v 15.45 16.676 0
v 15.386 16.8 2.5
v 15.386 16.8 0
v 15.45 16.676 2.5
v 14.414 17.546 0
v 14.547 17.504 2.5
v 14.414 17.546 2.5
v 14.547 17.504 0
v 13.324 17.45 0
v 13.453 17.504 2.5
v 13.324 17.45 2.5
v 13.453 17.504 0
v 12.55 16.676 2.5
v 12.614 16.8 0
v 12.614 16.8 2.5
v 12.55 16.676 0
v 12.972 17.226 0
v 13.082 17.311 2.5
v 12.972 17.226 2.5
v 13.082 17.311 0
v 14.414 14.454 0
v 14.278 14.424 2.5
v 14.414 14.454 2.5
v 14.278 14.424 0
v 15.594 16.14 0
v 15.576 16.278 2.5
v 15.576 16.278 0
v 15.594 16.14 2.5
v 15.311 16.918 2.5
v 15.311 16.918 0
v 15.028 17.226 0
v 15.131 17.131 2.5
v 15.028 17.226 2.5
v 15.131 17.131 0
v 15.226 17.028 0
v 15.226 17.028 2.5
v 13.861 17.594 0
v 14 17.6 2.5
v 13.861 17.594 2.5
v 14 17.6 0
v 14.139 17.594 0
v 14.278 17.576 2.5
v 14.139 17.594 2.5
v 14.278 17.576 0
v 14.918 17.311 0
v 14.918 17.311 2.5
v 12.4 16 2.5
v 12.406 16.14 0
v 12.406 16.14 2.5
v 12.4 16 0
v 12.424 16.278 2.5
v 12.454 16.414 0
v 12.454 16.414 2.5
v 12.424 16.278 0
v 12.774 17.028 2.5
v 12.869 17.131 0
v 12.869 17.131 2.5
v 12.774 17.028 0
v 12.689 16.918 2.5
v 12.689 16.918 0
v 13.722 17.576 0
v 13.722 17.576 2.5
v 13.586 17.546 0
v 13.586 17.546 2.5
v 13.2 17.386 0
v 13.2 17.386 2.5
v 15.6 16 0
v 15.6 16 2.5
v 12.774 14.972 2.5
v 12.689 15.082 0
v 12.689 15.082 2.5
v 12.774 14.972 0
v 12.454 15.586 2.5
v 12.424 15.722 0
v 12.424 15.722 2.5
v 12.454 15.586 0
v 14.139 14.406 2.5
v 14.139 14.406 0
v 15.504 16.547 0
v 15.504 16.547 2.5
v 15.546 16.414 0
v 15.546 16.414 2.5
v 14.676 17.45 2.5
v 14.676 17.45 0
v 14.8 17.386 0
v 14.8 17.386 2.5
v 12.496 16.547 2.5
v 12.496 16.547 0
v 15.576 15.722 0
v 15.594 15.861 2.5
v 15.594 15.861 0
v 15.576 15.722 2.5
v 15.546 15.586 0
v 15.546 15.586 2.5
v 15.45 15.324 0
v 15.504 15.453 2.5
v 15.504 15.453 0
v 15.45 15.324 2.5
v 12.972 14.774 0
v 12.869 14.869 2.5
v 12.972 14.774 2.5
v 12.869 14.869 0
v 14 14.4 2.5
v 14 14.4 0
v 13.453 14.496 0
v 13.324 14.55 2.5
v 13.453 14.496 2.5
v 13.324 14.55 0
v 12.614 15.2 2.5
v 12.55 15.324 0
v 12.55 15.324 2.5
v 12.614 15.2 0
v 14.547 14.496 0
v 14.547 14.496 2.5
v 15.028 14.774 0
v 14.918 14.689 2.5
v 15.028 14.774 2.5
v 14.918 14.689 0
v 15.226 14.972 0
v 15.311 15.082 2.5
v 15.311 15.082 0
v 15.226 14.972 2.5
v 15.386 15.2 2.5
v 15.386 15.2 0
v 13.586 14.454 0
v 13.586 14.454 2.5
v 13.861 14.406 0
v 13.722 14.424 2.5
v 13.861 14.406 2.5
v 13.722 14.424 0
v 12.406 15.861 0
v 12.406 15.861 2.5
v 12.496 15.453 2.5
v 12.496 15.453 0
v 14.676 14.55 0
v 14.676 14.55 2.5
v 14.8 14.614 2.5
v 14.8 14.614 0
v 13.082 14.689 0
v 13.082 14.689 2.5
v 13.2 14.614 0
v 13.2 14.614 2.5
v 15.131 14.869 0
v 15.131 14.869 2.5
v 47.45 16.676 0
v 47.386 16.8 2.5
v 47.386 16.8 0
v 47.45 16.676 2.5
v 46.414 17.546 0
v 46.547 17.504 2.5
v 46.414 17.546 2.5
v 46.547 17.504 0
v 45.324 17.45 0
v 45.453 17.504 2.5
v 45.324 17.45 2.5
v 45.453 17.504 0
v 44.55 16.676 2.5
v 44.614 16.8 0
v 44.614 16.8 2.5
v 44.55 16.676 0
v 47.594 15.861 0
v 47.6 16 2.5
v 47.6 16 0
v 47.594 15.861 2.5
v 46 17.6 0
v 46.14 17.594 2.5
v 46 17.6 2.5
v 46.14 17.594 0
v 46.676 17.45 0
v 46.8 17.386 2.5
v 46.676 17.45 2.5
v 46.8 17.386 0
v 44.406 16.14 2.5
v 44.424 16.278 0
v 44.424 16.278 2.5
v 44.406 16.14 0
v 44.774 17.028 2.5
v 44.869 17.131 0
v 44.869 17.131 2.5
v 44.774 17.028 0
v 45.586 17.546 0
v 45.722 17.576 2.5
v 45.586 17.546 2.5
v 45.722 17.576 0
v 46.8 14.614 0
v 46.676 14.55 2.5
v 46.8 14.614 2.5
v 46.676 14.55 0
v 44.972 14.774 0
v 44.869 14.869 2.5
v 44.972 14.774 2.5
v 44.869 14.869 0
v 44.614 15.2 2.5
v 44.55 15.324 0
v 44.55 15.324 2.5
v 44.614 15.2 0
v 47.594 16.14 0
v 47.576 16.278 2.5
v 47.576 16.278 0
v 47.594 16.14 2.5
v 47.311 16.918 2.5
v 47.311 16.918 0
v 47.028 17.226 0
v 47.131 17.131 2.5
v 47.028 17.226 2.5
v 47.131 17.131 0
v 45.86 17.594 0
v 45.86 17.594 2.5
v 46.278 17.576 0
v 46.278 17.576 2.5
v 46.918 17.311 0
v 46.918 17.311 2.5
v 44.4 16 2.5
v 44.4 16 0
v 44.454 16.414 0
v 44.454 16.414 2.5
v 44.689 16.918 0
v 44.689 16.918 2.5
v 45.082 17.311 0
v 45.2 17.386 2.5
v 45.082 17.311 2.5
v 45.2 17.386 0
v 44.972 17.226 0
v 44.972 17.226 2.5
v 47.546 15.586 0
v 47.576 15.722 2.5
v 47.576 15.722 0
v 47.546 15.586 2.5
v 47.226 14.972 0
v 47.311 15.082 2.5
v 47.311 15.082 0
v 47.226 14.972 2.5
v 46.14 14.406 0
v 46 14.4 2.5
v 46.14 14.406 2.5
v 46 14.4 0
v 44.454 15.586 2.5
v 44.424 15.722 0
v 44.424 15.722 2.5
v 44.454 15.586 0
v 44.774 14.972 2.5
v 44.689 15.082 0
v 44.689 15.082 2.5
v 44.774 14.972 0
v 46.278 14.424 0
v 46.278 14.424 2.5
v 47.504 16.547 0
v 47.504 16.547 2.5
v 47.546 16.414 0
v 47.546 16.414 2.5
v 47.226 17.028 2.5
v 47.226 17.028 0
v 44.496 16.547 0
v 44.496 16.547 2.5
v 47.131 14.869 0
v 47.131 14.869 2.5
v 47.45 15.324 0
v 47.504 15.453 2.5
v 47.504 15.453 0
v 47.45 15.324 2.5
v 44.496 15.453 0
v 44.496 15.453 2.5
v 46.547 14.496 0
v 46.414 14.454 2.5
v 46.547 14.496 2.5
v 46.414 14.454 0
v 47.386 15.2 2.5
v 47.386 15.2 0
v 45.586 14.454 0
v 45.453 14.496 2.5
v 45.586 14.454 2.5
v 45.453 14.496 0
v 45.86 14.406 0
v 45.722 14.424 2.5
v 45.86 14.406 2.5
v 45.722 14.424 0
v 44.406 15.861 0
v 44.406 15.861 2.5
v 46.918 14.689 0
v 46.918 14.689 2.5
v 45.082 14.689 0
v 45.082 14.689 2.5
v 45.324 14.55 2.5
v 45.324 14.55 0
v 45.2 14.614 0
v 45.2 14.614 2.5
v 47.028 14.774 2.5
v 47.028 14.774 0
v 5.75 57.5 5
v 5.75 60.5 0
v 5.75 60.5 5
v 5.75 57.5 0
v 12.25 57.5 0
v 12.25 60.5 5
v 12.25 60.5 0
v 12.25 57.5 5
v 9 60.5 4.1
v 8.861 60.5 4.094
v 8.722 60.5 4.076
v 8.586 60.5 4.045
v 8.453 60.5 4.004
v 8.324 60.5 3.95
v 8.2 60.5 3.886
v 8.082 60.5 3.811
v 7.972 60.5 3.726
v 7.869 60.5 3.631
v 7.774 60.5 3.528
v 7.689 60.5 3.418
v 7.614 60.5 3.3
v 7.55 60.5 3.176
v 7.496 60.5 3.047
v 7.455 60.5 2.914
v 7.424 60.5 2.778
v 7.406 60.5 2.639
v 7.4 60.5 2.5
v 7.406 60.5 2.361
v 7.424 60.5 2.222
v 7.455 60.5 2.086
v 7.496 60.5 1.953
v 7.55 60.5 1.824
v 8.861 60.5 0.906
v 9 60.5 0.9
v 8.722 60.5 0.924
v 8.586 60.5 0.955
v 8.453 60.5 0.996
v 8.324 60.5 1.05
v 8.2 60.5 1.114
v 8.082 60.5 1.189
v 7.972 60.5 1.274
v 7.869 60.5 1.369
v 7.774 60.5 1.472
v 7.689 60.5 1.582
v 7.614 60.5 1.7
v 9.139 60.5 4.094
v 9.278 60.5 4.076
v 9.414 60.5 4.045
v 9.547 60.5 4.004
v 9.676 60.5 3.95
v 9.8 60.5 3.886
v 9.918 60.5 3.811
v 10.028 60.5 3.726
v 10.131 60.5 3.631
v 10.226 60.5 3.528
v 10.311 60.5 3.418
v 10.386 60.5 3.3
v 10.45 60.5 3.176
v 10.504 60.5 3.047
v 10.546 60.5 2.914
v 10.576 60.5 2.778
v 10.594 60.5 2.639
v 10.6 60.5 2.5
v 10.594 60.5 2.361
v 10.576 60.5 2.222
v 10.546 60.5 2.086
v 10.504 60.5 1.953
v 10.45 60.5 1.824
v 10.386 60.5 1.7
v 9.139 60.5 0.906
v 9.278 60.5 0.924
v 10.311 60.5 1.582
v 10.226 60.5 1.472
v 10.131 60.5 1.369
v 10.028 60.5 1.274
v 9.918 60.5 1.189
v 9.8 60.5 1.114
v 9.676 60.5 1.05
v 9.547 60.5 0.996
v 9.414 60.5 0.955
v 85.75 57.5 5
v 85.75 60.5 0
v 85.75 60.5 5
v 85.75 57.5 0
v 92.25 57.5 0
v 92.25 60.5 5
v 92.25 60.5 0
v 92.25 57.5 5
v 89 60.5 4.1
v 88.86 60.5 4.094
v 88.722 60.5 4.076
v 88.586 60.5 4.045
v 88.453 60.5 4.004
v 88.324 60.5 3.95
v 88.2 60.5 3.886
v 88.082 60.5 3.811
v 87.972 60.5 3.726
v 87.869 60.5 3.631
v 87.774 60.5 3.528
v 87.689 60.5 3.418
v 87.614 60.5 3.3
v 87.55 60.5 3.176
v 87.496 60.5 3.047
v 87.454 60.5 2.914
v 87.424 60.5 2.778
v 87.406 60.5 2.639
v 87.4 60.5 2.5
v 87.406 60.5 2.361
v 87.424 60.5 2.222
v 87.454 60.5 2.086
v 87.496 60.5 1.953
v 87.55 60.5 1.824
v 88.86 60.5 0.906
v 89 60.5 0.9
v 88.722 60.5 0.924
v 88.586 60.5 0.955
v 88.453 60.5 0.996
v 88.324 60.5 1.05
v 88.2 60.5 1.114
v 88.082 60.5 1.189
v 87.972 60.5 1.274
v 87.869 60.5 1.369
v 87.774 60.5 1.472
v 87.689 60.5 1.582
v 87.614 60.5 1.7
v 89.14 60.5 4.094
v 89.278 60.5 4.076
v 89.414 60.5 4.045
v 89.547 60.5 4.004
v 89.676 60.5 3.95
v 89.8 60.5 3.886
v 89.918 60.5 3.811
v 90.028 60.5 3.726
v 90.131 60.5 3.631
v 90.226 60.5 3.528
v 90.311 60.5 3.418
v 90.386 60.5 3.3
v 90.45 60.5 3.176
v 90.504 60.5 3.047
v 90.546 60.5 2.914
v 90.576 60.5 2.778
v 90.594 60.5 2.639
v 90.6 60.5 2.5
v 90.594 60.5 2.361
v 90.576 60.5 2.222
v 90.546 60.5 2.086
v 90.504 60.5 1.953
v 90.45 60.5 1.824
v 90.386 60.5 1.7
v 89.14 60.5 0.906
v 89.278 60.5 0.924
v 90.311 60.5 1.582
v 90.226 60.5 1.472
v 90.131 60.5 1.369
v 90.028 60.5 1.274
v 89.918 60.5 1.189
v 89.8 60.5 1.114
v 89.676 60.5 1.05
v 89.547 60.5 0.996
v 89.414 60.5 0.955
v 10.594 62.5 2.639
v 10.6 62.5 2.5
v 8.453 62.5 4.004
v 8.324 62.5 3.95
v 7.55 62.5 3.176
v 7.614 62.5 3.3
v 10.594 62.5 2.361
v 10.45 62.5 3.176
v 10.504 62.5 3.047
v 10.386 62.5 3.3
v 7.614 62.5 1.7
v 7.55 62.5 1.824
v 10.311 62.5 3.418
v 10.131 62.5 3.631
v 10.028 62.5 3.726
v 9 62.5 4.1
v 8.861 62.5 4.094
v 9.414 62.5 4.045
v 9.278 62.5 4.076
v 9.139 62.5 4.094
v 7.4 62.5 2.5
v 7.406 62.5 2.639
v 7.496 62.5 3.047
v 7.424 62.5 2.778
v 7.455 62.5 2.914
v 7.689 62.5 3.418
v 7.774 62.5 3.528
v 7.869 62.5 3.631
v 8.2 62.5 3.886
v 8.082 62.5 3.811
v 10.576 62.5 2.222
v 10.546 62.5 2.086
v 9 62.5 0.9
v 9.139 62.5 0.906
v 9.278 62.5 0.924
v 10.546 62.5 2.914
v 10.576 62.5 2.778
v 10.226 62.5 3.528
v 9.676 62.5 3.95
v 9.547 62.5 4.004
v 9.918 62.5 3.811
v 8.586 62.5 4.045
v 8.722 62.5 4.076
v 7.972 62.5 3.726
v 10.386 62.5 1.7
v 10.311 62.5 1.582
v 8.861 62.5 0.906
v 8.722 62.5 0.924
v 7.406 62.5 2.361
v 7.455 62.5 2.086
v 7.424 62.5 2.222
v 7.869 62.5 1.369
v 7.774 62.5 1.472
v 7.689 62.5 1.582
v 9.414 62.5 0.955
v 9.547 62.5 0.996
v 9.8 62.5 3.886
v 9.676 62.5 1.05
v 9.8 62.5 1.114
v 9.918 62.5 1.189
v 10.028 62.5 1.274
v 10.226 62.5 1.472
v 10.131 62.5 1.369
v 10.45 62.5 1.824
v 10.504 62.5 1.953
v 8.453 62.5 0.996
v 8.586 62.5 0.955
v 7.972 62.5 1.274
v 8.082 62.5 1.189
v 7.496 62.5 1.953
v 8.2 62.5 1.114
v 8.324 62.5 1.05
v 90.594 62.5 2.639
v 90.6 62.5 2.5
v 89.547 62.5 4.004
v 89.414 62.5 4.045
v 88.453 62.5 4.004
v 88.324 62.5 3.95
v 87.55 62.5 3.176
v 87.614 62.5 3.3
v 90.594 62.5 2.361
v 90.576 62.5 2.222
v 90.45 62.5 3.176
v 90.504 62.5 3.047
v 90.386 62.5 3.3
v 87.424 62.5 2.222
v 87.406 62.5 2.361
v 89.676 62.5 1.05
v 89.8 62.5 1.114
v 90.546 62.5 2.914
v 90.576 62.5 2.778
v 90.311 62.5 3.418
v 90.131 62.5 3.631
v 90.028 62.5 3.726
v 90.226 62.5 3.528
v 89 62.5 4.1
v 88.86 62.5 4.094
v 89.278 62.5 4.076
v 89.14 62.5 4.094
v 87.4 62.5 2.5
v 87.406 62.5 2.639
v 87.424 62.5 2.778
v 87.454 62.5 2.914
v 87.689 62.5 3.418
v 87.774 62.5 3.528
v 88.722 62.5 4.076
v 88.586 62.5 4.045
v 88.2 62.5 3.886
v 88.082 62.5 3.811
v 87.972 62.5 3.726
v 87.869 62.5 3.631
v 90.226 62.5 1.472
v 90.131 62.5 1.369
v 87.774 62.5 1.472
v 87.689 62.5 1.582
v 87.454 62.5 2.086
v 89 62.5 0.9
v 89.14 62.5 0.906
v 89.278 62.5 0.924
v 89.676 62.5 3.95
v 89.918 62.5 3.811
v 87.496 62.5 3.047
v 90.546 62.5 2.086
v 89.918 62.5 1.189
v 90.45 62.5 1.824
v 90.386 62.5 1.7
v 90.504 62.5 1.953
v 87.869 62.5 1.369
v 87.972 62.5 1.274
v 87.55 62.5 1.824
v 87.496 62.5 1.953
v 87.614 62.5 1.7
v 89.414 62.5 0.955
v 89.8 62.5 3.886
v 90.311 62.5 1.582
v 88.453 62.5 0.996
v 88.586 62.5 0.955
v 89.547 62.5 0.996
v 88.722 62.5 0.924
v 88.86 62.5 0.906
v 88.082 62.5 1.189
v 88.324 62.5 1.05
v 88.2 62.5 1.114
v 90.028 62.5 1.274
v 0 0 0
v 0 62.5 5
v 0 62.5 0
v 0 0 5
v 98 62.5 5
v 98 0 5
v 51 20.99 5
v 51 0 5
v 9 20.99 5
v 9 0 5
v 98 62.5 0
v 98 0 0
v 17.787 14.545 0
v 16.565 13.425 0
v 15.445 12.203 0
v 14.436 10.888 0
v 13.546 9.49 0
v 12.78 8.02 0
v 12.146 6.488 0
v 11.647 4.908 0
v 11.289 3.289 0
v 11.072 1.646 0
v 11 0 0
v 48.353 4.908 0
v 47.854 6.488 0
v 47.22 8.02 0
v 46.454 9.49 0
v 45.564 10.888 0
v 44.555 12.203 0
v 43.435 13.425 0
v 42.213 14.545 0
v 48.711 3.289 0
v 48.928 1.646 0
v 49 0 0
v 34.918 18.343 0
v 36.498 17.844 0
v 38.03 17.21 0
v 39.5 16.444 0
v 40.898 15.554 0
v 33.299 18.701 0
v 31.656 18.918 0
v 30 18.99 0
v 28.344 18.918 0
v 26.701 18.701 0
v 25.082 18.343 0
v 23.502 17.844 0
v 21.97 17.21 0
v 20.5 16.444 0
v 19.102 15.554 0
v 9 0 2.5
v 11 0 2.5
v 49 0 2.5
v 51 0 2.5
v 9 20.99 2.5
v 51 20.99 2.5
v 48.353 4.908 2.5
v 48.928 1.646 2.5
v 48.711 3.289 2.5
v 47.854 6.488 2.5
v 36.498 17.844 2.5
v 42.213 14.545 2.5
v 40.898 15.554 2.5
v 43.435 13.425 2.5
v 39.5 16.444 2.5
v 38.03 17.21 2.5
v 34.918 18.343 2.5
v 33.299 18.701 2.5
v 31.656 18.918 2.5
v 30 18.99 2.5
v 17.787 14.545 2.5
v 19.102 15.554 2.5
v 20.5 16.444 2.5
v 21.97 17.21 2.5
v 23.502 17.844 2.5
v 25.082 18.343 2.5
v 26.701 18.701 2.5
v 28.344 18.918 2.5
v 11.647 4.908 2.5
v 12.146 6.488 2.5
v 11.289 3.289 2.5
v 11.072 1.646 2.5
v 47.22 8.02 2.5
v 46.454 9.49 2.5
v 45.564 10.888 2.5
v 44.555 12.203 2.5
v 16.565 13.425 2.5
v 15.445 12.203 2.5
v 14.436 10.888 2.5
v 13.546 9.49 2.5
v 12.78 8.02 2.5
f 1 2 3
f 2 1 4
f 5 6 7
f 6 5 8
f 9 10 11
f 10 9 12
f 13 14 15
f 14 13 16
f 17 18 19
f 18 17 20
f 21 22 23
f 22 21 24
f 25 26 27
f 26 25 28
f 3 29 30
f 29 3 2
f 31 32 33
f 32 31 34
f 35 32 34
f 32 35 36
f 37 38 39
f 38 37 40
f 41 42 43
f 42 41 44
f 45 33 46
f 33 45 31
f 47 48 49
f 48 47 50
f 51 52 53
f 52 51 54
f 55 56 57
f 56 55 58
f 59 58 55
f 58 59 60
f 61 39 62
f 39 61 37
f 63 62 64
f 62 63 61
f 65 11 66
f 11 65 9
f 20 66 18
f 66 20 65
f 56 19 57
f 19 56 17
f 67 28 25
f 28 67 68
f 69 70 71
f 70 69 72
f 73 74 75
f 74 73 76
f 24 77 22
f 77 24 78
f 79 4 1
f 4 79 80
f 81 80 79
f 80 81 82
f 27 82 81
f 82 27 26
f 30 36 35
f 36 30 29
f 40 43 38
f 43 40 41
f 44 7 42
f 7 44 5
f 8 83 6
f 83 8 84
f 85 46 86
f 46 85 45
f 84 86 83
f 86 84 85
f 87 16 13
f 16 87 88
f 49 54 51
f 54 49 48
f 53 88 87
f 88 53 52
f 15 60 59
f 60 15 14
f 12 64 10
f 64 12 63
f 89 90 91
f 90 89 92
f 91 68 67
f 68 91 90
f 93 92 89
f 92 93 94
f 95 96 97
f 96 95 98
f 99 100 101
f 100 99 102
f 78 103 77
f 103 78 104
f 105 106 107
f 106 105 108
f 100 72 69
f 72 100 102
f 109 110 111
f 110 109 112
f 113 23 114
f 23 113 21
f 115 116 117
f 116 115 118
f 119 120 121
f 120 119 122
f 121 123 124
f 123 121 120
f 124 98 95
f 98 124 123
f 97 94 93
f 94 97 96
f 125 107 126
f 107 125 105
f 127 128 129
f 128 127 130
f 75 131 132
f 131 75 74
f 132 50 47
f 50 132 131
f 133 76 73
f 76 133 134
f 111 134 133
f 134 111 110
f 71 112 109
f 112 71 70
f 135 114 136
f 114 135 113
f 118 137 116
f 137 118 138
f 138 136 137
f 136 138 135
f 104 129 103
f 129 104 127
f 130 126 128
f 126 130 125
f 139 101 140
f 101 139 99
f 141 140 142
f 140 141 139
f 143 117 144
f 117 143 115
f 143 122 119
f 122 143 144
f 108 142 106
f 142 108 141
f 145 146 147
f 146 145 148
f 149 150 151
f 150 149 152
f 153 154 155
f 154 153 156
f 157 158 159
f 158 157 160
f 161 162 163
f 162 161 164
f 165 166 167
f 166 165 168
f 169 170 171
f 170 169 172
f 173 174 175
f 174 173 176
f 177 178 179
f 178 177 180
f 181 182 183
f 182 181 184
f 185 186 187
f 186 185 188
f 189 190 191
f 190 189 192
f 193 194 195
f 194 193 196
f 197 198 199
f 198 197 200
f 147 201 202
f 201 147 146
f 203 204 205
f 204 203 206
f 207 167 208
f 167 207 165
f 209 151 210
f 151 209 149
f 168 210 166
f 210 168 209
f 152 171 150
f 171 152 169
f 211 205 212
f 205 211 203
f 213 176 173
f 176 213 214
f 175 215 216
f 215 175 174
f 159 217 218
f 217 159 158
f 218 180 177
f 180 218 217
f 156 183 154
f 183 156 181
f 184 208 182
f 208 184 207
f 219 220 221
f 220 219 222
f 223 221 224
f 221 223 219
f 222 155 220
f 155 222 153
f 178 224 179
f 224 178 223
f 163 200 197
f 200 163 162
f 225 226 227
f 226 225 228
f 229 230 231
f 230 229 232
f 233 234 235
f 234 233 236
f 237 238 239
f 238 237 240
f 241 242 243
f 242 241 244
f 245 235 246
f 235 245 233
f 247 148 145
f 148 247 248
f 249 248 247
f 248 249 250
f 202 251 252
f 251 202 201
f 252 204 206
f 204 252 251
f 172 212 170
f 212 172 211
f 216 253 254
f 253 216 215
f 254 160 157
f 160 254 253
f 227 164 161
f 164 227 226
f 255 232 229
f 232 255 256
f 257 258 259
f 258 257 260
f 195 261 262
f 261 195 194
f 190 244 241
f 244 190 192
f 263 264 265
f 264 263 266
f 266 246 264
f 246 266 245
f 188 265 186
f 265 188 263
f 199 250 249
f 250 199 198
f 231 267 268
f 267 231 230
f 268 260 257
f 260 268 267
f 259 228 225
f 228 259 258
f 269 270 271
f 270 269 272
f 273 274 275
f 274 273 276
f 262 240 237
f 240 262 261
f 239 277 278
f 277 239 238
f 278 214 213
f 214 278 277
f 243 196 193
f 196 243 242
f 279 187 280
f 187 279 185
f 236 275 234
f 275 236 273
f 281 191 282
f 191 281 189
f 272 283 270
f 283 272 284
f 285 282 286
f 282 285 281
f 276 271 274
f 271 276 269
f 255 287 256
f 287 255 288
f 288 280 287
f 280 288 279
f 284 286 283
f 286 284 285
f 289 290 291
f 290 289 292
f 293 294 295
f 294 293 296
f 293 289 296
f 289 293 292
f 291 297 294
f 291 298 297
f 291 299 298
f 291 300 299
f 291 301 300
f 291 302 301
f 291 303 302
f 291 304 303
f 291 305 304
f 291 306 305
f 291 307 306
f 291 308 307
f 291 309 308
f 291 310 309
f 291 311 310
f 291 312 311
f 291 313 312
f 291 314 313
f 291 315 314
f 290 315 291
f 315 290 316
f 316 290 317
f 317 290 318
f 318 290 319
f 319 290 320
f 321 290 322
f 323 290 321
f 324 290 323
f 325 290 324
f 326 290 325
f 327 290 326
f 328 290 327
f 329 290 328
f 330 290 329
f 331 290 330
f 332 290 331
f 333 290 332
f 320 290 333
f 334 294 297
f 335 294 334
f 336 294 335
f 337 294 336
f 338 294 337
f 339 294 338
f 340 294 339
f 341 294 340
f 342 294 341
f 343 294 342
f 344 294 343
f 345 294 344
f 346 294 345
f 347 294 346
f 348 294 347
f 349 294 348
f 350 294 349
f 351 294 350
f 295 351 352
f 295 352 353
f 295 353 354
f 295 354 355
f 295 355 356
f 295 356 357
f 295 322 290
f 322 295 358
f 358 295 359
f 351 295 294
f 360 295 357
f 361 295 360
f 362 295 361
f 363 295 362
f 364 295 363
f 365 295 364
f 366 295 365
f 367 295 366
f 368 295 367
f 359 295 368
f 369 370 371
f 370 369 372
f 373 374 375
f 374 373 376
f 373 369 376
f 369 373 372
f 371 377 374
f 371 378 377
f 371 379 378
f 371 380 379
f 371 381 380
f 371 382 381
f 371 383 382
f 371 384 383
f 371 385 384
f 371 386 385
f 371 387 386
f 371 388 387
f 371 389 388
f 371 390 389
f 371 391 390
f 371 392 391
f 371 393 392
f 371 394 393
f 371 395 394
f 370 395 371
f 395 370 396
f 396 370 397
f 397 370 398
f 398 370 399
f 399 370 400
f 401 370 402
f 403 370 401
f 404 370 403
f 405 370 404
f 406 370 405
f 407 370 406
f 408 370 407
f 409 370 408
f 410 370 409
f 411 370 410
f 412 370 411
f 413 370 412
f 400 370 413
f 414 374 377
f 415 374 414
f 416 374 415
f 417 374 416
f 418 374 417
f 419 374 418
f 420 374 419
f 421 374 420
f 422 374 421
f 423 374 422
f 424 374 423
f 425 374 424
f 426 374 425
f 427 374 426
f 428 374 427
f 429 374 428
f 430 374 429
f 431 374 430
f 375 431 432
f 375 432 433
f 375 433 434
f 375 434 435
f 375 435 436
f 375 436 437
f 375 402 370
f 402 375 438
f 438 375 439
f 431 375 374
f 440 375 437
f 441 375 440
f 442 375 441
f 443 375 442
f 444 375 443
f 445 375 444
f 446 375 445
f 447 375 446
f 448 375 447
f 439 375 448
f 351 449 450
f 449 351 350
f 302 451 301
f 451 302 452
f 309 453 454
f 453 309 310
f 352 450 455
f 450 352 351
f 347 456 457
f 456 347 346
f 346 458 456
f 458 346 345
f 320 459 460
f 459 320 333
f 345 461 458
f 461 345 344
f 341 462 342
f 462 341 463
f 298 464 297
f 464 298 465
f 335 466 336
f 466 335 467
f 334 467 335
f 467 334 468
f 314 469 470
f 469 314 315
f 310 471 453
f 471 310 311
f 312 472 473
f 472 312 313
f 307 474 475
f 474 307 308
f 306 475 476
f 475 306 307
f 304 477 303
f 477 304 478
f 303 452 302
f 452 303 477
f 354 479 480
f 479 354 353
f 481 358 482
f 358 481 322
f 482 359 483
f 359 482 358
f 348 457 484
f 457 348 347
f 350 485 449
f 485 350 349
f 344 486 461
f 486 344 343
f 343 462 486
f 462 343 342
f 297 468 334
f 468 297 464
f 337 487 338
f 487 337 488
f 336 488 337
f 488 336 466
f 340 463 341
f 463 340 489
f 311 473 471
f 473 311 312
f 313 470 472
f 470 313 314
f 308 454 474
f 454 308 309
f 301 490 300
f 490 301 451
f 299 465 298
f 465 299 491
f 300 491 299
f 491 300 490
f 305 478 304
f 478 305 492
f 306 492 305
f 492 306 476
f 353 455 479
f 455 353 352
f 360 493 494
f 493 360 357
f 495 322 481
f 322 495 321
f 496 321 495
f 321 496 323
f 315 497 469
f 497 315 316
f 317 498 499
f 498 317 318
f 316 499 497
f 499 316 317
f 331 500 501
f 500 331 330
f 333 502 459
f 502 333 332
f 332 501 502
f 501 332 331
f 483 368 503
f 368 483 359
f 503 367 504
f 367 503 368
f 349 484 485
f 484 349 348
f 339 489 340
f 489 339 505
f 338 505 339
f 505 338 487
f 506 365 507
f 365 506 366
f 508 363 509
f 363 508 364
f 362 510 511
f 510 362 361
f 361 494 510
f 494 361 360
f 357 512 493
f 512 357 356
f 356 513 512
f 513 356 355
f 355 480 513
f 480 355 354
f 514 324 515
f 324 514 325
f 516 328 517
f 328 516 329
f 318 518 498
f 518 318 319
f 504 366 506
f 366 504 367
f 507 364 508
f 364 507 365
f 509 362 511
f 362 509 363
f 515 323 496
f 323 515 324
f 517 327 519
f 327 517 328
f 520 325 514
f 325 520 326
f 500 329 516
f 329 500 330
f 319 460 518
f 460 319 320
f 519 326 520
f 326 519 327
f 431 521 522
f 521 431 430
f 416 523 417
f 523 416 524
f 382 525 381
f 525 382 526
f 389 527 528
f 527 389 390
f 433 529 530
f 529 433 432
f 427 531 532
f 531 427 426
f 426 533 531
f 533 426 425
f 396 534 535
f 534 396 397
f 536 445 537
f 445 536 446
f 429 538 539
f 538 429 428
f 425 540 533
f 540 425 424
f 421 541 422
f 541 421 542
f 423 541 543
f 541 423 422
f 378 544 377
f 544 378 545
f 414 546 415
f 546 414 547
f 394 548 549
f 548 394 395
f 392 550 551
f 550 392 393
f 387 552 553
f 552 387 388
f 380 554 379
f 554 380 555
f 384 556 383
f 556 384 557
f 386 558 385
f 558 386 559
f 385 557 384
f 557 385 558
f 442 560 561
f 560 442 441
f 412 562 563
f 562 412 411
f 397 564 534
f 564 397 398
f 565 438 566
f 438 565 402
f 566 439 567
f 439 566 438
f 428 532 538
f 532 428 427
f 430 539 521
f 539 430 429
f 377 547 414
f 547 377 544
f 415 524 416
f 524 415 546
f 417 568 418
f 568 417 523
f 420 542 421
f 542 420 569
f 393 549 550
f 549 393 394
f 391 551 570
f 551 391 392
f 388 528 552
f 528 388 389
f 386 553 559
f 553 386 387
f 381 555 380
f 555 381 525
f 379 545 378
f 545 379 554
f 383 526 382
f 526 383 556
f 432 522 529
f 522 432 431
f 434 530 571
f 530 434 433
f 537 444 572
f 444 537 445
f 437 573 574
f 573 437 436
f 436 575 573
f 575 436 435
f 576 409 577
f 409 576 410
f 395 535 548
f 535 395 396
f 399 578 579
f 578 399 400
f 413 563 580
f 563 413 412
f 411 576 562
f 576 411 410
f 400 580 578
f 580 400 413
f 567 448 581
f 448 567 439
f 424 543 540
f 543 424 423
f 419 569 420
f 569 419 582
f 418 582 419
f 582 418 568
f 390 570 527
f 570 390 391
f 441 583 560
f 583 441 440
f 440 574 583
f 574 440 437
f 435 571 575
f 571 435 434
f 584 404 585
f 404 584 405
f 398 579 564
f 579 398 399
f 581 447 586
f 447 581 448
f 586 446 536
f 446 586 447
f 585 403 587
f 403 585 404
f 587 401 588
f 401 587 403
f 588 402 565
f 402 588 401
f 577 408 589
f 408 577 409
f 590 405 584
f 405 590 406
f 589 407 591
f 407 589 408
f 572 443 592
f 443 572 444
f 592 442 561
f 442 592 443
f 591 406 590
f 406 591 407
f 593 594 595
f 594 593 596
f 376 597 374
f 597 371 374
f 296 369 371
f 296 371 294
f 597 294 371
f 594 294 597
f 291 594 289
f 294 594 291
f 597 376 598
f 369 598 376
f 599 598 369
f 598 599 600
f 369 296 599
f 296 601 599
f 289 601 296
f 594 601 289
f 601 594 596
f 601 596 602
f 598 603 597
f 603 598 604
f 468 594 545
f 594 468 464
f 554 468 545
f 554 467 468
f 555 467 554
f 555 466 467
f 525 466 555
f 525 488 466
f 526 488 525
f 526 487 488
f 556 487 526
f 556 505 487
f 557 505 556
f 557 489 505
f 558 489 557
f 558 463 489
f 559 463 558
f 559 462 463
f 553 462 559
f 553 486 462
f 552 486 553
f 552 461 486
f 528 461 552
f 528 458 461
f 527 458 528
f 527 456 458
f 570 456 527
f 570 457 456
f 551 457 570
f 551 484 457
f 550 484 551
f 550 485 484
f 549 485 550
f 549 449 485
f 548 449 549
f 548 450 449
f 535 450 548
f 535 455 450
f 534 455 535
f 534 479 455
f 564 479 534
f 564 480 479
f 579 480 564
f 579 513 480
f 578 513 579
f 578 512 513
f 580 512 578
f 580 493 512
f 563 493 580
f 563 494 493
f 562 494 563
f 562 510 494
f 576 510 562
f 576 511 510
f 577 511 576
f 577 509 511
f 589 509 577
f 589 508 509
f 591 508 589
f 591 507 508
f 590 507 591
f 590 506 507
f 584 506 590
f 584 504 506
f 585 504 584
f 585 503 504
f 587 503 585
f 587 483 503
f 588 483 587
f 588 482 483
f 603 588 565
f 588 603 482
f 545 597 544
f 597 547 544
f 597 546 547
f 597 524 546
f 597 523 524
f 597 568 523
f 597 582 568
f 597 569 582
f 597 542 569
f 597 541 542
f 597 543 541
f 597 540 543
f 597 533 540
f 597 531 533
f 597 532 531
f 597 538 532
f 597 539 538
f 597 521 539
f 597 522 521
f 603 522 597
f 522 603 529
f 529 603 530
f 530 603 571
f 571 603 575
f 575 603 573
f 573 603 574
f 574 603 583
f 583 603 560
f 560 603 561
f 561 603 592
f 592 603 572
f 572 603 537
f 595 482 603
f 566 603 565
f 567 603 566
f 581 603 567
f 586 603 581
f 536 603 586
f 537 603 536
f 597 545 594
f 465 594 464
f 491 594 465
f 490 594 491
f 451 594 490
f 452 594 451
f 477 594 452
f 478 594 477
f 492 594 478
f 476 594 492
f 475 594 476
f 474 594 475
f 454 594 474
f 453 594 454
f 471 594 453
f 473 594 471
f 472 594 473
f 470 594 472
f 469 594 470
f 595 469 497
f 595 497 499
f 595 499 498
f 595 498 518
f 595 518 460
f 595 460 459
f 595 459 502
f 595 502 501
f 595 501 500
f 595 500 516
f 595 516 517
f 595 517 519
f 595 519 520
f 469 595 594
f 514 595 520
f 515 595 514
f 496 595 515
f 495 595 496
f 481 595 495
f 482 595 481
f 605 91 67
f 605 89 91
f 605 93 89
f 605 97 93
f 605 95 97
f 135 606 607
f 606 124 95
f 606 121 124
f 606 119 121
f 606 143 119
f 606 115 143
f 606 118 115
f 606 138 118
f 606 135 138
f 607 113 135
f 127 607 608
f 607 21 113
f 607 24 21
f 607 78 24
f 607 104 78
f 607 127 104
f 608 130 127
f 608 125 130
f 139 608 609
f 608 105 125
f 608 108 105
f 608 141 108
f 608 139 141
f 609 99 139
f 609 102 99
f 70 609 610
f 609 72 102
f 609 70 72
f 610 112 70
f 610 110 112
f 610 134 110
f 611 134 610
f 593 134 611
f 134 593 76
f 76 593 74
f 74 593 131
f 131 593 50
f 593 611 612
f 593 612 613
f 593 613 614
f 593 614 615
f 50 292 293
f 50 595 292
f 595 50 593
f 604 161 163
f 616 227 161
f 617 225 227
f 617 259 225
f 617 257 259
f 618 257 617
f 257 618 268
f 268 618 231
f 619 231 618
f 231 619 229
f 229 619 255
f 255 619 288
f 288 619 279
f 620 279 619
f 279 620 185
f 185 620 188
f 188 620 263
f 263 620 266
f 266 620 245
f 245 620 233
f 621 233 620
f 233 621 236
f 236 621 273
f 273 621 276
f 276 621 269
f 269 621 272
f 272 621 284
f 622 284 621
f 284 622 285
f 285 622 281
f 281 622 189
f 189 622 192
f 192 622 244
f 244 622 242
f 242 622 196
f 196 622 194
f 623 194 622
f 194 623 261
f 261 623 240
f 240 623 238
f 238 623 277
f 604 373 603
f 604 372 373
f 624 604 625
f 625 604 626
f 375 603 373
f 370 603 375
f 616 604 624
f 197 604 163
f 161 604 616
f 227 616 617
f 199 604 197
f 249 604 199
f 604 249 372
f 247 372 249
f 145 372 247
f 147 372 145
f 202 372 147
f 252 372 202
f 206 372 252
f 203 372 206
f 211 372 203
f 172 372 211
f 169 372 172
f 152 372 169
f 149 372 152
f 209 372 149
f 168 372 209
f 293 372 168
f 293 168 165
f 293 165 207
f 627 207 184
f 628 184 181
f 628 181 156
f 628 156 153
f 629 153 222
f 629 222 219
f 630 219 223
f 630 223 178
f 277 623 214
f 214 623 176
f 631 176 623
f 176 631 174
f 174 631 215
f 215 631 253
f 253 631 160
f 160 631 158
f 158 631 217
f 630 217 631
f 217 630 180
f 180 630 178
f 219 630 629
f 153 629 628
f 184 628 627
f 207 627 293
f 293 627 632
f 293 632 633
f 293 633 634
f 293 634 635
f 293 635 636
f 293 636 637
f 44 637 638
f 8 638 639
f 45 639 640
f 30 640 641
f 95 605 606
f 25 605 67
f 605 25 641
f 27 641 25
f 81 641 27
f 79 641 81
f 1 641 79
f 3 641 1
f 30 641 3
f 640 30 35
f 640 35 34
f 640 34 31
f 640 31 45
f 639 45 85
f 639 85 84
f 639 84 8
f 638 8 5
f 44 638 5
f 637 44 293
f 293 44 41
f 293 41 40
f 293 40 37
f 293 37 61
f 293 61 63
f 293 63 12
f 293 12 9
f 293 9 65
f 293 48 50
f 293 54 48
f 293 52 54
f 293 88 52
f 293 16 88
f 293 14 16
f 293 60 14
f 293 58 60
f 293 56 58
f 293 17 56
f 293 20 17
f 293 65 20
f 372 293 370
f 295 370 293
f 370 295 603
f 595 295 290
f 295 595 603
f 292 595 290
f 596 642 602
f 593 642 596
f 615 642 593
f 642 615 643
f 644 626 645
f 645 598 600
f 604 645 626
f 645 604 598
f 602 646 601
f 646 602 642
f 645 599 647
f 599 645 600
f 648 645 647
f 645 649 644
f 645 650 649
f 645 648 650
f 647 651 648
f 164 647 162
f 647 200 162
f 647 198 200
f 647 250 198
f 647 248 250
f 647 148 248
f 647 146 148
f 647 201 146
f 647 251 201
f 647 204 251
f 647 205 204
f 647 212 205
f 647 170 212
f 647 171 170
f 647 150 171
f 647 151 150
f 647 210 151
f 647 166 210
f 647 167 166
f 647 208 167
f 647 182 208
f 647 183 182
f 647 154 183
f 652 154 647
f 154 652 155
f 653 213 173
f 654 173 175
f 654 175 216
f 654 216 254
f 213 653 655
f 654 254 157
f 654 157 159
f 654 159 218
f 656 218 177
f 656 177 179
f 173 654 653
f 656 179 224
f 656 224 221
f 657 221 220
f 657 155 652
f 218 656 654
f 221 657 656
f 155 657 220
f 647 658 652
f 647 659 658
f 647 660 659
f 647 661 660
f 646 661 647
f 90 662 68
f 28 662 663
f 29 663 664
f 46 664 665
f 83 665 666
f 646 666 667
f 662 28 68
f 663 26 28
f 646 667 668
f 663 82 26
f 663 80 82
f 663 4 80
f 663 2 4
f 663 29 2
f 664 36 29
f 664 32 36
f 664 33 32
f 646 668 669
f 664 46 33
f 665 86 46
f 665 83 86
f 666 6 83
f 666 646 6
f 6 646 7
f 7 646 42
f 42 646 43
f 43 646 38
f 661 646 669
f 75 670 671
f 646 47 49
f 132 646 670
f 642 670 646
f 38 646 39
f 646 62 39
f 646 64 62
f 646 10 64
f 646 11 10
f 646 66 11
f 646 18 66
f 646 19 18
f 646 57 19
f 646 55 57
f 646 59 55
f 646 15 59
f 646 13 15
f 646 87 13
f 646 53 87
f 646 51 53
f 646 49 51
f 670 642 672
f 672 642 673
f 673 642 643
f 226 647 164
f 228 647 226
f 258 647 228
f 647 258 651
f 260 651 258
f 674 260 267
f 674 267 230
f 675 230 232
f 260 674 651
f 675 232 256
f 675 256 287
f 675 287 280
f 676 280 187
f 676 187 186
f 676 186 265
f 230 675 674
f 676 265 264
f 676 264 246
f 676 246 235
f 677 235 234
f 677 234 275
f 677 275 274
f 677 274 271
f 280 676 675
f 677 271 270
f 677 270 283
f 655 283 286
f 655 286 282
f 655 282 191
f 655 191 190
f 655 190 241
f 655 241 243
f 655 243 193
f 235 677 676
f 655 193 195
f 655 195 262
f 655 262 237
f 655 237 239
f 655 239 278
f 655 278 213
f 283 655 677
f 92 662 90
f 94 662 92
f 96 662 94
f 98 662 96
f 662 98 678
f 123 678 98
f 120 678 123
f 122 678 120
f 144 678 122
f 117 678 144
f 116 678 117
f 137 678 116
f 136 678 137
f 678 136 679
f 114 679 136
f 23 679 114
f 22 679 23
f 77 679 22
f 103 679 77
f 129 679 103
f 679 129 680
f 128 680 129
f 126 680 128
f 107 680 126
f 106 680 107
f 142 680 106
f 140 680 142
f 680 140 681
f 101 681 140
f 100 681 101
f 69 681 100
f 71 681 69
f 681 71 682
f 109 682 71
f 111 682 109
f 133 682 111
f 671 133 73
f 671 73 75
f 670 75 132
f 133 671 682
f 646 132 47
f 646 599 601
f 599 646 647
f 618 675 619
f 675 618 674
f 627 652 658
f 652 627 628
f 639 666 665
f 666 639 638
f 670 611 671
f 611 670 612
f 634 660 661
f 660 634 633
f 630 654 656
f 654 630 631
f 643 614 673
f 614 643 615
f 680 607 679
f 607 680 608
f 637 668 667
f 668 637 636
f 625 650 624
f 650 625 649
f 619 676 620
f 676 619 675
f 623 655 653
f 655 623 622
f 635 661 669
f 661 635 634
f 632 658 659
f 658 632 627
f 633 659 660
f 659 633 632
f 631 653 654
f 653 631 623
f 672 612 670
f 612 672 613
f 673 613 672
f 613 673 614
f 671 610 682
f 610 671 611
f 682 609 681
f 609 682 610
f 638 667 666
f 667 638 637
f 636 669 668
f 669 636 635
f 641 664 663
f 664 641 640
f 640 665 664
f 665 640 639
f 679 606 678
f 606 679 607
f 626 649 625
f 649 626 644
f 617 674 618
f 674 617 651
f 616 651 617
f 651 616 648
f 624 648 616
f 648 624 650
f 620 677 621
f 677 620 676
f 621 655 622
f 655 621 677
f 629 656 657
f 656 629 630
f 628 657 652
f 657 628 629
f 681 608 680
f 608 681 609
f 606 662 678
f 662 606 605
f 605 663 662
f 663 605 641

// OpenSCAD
$fa=5; $fs=0.1; 

difference(){

cube([98, 62.5, 5]);

{   
    translate([30-42/2, -0.01, 2.5])
        cube([42, 42/2, 2.51]);
    translate([30, -0.01, 2.5])
        cylinder(h=5.01, r=19, center=true);
    
    translate([14, 16, 2.5]){
        cylinder(h=5.01, r=1.6, center=true);
        translate([32, 0, 0])
            cylinder(h=5.01, r=1.6, center=true);}
            
            
    translate([5.75, 57.5, -0.01]){
            cube([6.5, 3, 5.02]);
            translate([80, 0, 0])
                cube([6.5, 3, 5.02]);}
                
    translate([9, 61.5, 2.5]){
            rotate([90,0,0])
                cylinder(h=2.01, r=1.6, center=true);
        
            translate([80, 0, 0])
                rotate([90,0,0])
                    cylinder(h=2.01, r=1.6, center=true);
    }
    

}    
    
    
    
    
}
